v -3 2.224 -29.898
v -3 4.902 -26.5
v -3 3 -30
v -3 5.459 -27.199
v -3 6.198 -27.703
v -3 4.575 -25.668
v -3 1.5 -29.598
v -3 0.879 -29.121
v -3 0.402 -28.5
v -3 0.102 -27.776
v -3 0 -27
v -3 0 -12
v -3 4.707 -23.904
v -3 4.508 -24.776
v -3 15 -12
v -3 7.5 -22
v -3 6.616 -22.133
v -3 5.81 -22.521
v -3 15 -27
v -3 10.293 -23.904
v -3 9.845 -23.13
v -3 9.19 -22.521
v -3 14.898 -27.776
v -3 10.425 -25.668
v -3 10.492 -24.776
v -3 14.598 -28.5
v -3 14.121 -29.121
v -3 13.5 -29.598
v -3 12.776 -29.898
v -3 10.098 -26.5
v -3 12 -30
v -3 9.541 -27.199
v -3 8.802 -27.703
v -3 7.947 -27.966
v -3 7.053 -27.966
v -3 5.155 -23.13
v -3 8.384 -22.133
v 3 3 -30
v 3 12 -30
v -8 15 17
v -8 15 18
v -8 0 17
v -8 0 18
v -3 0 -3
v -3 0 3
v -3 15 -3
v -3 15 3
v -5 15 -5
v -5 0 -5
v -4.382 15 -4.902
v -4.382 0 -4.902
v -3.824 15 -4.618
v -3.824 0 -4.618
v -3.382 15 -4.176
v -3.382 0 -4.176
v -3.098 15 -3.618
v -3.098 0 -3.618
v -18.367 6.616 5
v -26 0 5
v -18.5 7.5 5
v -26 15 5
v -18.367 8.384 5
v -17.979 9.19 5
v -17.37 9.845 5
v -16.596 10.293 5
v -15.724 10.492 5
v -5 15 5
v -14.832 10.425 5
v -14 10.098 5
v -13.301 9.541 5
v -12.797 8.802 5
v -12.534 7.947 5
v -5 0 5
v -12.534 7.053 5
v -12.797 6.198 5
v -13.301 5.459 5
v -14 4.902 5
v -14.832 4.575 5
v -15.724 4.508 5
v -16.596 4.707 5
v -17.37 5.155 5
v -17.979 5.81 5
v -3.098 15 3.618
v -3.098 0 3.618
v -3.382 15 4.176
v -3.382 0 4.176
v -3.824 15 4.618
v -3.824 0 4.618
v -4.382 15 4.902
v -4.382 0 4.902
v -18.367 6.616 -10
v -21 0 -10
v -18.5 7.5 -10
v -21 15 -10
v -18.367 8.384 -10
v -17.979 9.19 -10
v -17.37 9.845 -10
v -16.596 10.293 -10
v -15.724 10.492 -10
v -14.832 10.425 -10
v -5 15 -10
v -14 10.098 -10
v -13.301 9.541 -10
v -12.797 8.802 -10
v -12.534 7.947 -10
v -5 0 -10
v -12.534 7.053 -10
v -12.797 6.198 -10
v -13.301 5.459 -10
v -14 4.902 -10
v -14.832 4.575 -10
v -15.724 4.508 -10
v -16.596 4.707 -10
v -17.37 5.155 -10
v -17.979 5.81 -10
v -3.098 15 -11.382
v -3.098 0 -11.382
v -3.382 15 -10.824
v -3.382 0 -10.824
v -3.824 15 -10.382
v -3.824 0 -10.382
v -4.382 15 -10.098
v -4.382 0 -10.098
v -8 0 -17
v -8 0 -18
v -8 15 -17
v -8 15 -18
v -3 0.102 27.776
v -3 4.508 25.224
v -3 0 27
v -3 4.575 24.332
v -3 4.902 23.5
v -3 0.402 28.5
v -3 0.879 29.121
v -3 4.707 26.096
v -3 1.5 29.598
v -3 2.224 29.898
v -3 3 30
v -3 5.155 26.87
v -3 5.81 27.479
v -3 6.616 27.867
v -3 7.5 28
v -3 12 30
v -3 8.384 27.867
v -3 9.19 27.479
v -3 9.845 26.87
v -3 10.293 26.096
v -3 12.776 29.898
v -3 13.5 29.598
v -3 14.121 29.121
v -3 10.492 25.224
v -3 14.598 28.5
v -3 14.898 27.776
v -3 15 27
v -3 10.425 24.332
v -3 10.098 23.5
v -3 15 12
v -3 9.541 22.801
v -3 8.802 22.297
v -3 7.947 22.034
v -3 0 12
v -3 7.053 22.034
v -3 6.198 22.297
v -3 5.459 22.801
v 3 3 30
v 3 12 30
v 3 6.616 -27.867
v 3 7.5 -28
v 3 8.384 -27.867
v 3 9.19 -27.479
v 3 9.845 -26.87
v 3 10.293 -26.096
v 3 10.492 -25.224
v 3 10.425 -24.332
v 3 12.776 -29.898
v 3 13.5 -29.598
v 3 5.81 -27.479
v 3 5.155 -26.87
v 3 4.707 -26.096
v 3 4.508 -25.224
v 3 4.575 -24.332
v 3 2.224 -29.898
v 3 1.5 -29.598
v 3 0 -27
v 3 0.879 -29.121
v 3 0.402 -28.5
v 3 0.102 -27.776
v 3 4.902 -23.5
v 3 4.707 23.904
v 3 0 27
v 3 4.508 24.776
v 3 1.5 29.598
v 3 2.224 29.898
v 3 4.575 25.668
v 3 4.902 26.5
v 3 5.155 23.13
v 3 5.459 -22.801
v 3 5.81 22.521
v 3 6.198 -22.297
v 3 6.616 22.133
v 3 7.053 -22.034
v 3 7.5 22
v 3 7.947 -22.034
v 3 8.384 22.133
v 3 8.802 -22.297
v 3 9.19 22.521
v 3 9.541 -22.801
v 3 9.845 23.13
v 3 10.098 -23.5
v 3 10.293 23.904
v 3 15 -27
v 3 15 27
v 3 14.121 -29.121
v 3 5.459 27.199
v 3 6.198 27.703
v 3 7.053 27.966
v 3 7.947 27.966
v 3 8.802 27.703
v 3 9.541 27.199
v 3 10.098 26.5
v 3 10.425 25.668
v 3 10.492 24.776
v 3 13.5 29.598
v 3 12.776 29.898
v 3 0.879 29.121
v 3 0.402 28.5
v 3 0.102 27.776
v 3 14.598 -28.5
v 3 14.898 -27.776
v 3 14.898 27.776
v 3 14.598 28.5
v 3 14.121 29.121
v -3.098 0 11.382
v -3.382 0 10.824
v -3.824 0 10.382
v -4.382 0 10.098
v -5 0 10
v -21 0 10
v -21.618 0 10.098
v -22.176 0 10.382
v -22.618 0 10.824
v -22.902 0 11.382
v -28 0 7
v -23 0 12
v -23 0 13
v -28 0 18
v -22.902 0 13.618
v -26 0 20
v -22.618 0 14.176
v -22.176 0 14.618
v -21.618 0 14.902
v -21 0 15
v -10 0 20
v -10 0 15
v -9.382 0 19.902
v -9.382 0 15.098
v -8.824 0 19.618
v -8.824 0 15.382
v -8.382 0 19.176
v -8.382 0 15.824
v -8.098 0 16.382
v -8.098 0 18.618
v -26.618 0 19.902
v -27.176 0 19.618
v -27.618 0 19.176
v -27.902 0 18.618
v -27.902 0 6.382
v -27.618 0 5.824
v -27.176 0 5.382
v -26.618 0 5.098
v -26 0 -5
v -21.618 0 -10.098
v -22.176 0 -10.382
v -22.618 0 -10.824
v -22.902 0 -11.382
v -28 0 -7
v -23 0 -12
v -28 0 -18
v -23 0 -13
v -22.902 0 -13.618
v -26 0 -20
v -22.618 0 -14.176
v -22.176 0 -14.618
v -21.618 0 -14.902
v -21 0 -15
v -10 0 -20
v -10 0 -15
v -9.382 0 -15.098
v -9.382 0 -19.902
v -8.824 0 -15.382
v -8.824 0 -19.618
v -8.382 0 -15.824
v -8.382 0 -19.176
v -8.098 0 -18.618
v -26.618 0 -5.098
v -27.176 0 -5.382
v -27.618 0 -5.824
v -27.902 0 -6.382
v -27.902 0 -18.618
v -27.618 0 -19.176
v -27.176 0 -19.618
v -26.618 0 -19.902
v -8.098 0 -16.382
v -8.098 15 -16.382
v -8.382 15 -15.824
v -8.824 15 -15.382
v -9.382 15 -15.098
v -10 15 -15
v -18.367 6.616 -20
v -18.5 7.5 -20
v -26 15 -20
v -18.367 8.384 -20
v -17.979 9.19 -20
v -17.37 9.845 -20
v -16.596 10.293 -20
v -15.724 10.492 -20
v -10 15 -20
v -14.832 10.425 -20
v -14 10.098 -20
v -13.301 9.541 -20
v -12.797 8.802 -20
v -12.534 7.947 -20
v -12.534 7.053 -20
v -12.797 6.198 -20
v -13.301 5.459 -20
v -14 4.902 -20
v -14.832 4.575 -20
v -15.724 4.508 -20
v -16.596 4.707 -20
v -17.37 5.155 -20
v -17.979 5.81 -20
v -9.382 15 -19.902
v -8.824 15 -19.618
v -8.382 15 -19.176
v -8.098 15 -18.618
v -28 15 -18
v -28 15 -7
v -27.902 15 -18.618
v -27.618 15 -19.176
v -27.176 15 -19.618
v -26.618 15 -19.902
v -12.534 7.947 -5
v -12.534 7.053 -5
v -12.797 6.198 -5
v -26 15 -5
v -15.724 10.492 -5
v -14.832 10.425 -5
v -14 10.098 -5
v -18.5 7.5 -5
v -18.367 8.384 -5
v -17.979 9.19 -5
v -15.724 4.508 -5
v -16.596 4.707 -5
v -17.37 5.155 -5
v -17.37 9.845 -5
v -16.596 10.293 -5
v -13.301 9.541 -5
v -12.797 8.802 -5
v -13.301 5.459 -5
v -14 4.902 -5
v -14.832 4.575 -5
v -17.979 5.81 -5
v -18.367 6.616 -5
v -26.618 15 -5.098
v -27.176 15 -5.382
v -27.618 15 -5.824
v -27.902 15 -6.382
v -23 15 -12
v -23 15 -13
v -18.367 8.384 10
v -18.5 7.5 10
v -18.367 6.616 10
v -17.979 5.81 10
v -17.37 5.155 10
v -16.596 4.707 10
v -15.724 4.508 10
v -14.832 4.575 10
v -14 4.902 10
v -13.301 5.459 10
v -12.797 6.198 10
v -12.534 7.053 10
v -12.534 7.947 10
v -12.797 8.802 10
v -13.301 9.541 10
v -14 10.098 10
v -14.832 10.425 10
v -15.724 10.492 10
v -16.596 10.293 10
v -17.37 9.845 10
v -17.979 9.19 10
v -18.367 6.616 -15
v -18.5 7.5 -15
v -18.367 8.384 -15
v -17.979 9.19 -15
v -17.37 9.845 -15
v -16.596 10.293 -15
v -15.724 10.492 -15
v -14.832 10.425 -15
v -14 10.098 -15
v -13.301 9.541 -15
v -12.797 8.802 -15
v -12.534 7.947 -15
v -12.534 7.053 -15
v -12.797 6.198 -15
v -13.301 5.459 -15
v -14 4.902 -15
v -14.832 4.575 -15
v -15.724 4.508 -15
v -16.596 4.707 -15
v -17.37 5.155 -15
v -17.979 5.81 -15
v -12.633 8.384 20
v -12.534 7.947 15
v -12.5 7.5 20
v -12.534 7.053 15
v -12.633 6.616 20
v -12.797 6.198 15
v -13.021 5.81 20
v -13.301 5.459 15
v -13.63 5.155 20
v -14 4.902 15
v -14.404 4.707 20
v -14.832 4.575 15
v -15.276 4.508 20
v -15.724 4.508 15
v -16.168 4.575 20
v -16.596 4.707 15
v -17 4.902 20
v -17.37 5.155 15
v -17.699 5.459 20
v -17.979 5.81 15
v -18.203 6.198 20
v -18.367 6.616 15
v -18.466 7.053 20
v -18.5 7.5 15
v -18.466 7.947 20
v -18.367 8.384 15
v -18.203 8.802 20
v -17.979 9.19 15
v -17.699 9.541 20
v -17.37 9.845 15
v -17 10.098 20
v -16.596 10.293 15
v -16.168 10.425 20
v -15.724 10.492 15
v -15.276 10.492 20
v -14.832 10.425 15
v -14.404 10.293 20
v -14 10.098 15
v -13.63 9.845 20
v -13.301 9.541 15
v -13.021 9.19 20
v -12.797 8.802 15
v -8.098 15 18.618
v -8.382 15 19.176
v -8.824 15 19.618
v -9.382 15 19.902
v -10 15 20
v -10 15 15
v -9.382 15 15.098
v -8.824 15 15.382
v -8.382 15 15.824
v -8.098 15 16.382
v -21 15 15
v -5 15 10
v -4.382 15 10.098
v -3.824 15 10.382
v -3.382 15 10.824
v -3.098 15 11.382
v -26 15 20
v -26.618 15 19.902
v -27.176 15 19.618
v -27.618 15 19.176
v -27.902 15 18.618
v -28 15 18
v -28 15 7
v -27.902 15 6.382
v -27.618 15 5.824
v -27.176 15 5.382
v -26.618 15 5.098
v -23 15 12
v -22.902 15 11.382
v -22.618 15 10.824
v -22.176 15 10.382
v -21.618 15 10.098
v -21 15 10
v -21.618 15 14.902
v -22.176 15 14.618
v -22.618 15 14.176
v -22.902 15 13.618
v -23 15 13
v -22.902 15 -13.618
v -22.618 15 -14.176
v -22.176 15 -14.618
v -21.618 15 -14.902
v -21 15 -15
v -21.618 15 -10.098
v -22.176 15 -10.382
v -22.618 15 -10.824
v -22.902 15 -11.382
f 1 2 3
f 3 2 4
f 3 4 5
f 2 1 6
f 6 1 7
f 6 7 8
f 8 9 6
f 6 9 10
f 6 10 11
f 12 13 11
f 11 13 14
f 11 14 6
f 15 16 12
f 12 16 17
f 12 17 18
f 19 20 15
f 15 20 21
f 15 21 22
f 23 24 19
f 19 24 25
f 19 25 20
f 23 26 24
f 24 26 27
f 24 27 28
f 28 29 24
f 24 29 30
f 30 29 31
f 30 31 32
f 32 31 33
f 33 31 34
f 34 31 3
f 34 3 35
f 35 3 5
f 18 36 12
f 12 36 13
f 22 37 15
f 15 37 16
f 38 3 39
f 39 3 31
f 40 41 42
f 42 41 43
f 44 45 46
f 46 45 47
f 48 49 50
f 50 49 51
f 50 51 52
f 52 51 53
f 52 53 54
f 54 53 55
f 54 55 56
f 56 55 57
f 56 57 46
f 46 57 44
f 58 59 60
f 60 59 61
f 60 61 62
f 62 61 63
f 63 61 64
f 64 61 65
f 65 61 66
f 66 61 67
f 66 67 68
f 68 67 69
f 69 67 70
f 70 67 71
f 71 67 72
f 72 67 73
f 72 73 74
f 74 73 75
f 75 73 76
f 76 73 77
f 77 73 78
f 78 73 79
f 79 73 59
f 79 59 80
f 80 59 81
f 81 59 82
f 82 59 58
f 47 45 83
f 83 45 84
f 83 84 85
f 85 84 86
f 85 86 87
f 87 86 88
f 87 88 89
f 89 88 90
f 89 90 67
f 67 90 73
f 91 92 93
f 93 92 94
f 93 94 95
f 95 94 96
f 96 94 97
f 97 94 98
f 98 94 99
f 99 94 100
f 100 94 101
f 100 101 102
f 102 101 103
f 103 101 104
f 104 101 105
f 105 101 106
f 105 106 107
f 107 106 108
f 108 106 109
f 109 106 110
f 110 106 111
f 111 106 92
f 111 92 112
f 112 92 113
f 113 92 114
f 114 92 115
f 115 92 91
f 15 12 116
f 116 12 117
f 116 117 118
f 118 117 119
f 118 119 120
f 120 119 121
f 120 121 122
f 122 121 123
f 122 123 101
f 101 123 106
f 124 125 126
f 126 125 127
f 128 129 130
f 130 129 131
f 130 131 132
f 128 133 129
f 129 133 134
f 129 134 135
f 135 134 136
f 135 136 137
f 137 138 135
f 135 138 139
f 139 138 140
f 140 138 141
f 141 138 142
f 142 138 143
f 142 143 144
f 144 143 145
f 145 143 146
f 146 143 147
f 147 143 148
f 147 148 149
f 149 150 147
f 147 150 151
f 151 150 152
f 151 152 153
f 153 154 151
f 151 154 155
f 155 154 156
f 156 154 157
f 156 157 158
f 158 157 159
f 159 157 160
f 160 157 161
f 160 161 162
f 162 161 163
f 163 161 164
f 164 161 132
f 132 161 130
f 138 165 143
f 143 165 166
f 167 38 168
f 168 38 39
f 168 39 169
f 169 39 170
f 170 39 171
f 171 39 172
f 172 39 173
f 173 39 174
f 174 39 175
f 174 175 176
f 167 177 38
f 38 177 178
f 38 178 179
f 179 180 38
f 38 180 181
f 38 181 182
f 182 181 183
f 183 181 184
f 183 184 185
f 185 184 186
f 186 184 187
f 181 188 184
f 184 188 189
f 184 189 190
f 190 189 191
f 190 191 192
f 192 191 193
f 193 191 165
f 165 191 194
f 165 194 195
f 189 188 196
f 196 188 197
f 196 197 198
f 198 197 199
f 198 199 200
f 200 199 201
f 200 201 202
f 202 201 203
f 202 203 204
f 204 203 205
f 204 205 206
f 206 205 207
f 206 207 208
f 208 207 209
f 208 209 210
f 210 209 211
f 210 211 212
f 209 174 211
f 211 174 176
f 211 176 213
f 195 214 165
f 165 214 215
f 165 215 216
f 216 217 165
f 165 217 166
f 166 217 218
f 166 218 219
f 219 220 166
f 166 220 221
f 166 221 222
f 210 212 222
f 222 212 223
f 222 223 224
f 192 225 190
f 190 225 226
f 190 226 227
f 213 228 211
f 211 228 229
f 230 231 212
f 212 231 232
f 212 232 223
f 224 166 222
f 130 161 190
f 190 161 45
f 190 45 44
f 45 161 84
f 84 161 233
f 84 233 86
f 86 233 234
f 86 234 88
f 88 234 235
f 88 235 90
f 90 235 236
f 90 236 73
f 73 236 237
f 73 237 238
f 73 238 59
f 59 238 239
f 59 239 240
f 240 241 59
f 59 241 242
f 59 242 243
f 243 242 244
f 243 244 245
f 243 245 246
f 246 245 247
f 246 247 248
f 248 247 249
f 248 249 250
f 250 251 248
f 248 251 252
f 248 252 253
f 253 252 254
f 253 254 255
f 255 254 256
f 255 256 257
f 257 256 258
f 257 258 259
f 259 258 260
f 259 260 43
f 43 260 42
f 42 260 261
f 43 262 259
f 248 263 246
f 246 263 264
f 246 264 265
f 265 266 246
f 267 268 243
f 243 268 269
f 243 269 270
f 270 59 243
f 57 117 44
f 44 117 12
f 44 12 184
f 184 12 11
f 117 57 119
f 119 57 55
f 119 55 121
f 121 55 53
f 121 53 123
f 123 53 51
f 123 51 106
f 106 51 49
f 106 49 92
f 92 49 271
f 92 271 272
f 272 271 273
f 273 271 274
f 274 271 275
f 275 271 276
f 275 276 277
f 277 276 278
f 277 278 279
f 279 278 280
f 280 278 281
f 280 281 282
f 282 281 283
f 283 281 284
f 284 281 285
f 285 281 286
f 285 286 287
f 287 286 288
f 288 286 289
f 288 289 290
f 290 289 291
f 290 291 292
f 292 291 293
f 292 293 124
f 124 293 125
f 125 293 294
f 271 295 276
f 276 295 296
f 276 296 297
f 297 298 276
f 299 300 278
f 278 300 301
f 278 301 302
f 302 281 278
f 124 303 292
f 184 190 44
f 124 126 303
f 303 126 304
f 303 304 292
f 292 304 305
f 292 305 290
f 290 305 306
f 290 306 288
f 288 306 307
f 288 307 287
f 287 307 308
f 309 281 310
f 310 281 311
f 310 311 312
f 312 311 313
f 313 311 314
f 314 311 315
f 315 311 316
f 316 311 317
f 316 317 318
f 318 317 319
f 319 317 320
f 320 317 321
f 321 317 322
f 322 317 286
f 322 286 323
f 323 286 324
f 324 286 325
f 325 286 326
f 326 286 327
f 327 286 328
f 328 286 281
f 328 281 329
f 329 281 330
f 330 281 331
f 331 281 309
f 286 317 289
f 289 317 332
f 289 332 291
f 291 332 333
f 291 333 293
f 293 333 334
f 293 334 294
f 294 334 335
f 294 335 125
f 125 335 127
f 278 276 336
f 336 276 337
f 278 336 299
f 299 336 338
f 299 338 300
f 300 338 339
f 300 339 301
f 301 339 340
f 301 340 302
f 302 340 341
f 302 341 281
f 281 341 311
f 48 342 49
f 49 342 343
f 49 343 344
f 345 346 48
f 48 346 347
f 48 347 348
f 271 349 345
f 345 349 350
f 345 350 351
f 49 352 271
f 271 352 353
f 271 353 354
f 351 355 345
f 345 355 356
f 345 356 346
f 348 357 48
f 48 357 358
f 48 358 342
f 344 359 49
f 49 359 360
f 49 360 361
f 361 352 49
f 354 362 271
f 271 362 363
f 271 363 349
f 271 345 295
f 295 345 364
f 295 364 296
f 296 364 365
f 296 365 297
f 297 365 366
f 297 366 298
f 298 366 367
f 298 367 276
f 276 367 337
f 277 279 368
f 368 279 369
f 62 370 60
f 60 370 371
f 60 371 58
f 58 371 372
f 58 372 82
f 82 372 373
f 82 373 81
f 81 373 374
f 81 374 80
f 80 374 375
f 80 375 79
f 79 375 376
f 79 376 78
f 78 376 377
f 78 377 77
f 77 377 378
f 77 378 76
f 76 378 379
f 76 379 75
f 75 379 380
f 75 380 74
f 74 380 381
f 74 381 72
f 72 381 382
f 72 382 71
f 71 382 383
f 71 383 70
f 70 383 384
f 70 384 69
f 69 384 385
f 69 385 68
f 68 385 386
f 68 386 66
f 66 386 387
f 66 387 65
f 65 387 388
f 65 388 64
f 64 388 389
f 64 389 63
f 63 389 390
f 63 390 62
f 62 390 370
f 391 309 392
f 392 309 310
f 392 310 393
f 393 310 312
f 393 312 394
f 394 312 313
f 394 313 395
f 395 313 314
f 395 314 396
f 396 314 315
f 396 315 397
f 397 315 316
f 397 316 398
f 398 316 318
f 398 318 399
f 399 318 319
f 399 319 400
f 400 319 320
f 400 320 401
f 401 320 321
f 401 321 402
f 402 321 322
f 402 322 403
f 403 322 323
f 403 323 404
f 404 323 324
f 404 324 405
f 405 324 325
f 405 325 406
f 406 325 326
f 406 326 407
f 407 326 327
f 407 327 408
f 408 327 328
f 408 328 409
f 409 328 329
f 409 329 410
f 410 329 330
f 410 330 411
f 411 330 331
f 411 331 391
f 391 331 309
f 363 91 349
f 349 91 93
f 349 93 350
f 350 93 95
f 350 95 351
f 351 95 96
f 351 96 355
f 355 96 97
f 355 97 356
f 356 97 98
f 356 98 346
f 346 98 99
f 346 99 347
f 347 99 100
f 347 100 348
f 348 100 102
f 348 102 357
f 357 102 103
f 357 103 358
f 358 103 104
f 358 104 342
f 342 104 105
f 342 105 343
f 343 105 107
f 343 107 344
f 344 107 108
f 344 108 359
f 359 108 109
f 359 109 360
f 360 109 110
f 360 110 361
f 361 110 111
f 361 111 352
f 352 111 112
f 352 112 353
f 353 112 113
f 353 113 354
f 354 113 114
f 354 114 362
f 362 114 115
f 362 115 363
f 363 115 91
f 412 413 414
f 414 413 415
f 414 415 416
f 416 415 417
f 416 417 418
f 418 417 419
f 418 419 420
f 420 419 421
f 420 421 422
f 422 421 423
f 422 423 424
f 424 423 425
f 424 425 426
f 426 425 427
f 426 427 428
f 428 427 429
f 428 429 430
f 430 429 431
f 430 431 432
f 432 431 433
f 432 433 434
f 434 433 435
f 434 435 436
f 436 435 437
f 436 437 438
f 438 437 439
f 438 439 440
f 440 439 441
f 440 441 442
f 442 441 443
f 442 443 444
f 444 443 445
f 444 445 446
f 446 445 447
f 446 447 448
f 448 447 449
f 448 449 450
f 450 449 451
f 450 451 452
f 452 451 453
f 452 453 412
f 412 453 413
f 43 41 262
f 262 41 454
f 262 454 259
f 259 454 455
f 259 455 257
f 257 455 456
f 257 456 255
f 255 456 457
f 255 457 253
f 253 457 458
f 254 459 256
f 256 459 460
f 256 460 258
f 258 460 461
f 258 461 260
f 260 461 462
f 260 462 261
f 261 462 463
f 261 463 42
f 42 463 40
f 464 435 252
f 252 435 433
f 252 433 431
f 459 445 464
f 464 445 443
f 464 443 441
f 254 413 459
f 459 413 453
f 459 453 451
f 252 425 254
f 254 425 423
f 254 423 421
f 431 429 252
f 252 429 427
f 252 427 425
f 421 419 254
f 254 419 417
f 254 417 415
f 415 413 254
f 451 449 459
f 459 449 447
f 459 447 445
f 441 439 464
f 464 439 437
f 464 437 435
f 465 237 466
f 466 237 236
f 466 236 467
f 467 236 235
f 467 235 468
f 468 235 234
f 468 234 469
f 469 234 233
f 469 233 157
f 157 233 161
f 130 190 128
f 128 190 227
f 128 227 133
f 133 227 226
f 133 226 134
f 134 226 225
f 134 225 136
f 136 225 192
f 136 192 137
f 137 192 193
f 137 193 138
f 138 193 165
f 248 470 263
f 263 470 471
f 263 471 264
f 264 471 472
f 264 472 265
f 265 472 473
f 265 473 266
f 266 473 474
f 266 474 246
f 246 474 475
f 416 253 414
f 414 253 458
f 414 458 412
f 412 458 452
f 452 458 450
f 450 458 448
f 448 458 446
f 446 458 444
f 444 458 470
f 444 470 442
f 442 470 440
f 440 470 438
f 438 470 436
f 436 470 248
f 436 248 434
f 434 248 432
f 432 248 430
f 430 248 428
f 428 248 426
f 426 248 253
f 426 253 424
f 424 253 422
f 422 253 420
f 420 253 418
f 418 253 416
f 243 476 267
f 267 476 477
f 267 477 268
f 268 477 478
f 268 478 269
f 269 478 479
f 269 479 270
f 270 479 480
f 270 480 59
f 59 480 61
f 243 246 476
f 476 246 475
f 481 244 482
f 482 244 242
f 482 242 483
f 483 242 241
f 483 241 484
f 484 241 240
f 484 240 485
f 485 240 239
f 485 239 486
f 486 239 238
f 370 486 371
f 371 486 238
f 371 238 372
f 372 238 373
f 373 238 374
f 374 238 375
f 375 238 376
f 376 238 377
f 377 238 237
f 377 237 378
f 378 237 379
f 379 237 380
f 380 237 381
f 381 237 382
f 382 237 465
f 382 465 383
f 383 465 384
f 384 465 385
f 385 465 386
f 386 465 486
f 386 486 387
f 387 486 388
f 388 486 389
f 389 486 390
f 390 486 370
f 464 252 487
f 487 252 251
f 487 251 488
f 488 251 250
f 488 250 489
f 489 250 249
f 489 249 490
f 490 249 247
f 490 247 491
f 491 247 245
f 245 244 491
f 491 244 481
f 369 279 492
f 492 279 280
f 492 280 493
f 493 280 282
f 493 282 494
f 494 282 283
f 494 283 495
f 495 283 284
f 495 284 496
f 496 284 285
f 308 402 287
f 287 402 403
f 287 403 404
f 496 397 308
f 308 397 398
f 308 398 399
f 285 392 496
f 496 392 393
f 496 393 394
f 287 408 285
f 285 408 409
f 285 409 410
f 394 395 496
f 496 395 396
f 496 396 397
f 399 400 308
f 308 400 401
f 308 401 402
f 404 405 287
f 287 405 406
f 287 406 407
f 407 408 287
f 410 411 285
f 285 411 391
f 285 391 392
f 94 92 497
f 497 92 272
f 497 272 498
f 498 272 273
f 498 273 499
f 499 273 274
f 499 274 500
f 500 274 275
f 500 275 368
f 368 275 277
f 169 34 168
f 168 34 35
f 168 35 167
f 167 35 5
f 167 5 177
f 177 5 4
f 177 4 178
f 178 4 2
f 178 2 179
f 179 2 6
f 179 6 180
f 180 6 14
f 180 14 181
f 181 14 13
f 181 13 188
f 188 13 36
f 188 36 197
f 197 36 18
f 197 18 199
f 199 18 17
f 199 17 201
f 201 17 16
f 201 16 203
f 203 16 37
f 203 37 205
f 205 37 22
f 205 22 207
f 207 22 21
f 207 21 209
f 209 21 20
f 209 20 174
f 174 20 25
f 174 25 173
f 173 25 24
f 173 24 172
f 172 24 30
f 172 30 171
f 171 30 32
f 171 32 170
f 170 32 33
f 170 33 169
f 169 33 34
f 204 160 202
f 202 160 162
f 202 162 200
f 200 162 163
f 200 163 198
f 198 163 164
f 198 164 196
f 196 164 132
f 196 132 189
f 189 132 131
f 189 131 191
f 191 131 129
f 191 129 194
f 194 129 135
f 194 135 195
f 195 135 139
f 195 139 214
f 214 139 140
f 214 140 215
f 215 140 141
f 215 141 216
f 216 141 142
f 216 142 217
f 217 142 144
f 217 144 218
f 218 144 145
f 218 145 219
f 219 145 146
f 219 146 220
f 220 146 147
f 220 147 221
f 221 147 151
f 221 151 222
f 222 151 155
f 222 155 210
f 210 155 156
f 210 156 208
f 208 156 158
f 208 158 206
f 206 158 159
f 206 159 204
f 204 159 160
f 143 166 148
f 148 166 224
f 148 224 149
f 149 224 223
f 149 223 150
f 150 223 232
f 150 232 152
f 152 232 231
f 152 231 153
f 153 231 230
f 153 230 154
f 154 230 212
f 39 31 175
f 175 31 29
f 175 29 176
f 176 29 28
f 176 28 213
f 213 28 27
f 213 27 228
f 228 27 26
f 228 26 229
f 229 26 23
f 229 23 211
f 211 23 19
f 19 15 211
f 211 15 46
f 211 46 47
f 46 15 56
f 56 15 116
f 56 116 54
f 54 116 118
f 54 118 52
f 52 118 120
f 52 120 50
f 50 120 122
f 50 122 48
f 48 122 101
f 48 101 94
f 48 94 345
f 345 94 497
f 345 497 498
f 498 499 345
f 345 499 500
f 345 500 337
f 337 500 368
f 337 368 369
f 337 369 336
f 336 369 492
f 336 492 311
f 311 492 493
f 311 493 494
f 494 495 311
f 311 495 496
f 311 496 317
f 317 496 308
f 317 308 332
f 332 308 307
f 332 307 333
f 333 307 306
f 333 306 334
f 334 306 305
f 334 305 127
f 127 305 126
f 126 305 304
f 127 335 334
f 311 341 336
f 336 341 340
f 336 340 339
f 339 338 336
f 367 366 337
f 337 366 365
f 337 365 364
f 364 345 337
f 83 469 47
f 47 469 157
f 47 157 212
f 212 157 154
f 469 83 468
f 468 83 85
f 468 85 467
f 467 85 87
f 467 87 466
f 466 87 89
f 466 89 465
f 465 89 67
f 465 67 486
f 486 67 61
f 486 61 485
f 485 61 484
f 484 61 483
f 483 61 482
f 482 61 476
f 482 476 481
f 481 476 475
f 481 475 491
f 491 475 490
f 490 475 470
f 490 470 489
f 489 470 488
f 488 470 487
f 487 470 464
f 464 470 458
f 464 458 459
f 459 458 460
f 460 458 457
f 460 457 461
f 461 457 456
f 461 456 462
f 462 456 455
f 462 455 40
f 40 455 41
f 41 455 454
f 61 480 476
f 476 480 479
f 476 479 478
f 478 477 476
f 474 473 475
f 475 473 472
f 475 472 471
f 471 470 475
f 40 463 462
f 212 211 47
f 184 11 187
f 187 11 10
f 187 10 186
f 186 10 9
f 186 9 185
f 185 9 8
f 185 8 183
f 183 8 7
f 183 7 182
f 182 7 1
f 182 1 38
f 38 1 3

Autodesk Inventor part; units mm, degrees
ref_plane "YZ Plane" through (0, 0, 0) normal (1, 0, 0) x (0, 1, 0)
ref_plane "XZ Plane" through (0, 0, 0) normal (0, 1, 0) x (-1, 0, 0)
ref_plane "XY Plane" through (0, 0, 0) normal (0, 0, 1) x (1, 0, 0)
sketch "Sketch1" plane through (0, 0, 0) normal (0, 1, 0) x (-1, 0, 0)
  line L0 (-3, -30) -> (3, -30)
  line L1 (3, -30) -> (3, 30)
  line L2 (3, 30) -> (-3, 30)
  line L3 (-3, 30) -> (-3, -30)
  line L4 (-3, -30) -> (3, 30) construction
  line L5 (3, -30) -> (-3, 30) construction
  line L6 (3, 30) -> (3, 20)
  line L7 (3, 20) -> (28, 20)
  line L8 (28, 20) -> (28, 5)
  line L9 (28, 5) -> (3, 5)
  line L10 (3, 5) -> (3, 20)
  line L11 (15.5, 20) -> (10.5, 20)
  line L12 (15.5, 20) -> (8, 20)
  line L13 (3, 20) -> (8, 20)
  line L14 (8, 20) -> (8, 15)
  line L15 (8, 15) -> (3, 15)
  line L16 (3, 15) -> (3, 20)
  line L17 (3, 15) -> (23, 15)
  line L18 (23, 15) -> (23, 10)
  line L19 (23, 10) -> (3, 10)
  line L20 (3, 10) -> (3, 15)
  line L21 (0, 0) -> (20, 0)
  line L22 (3, -20) -> (28, -20)
  line L23 (28, -20) -> (28, -5)
  line L24 (28, -5) -> (3, -5)
  line L25 (8, -20) -> (8, -15)
  line L26 (8, -15) -> (3, -15)
  line L27 (3, -15) -> (23, -15)
  line L28 (23, -15) -> (23, -10)
  line L29 (23, -10) -> (3, -10)
  line L30 (8, 20) -> (3, 20)
  line L31 (3, 20) -> (3, 15)
  line L32 (3, 15) -> (8, 15)
  line L33 (8, 15) -> (8, 20)
  line L34 (8, -15) -> (3, -15)
  line L35 (3, -15) -> (3, -20)
  line L36 (3, -20) -> (8, -20)
  line L37 (8, -20) -> (8, -15)
  line L38 (28, 5) -> (28, -5)
  point P0 (8, 20)
  point P1 (8, 15)
  point P2 (3, 10)
  point P3 (3, -10)
  point P4 (8, -15)
  point P5 (3, -5)
  point P6 (3, 5)
  point P7 (28, -2.5)
  point P8 (23, -2.5)
  point P9 (23, -2.5)
  point P10 (23, 2.5)
  point P11 (23, 2.5)
  point P12 (28, 2.5)
  point P13 (3, 10)
  dimension "d0" = 6
  dimension "d1" = 60
  dimension "d2" = 10
  dimension "d3" = 25
  dimension "d4" = 15
  dimension "d8" = 5
  dimension "d9" = 5
  dimension "d10" = 20
  dimension "d11" = 5
  dimension "d12" = 20
extrude "Extrusion1" add sketch "Sketch1" along normal blind 15 contours L3 L2 L1 L0 | L25 L27 L28 L29 L1 L24 L23 L22 | L7 L8 L9 L1 L19 L18 L17 L14
sketch "Sketch2" plane through (-28, 0, 20) normal (0, 0, 1) x (1, 0, 0)
  line L0 (20, 0) -> (20, 15) projected
  line L1 (20, 7.5) -> (12.5, 7.5)
  circle A0 centre (12.5, 7.5) radius 3
  point P0 (28, 0)
  dimension "d15" = 7.5
  dimension "d16" = 6
extrude "Extrusion2" cut sketch "Sketch2" against normal through all
fillet "Fillet1" radius 2 16 edges at (-8, 7.5, 20) (-8, 7.5, 15) (-3, 7.5, 10) (-28, 7.5, 20) (-28, 7.5, 5) (-23, 7.5, 10) (-23, 7.5, 15) (-23, 7.5, -15) (-23, 7.5, -10) (-28, 7.5, -5) (-28, 7.5, -20) (-8, 7.5, -20) (-8, 7.5, -15) (-3, 7.5, -10) (-3, 7.5, 5) (-3, 7.5, -5)
sketch "Sketch3" plane through (-3, 0, -30) normal (-1, 0, 0) x (0, 0, 1)
  line L0 (60, 0) -> (60, 15) projected
  line L1 (60, 7.5) -> (55, 7.5)
  line L2 (0, 0) -> (0, 15) projected
  line L3 (0, 7.5) -> (5, 7.5)
  circle A0 centre (55, 7.5) radius 3
  circle A1 centre (5, 7.5) radius 3
  point P0 (30, 0)
  dimension "d20" = 5
  dimension "d21" = 5
  dimension "d22" = 6
  dimension "d23" = 6
extrude "Extrusion3" cut sketch "Sketch3" against normal through all
fillet "Fillet2" radius 3 4 edges at (0, 15, 30) (0, 15, -30) (0, 0, -30) (0, 0, 30)
properties part number "Festoon_Carriage"
